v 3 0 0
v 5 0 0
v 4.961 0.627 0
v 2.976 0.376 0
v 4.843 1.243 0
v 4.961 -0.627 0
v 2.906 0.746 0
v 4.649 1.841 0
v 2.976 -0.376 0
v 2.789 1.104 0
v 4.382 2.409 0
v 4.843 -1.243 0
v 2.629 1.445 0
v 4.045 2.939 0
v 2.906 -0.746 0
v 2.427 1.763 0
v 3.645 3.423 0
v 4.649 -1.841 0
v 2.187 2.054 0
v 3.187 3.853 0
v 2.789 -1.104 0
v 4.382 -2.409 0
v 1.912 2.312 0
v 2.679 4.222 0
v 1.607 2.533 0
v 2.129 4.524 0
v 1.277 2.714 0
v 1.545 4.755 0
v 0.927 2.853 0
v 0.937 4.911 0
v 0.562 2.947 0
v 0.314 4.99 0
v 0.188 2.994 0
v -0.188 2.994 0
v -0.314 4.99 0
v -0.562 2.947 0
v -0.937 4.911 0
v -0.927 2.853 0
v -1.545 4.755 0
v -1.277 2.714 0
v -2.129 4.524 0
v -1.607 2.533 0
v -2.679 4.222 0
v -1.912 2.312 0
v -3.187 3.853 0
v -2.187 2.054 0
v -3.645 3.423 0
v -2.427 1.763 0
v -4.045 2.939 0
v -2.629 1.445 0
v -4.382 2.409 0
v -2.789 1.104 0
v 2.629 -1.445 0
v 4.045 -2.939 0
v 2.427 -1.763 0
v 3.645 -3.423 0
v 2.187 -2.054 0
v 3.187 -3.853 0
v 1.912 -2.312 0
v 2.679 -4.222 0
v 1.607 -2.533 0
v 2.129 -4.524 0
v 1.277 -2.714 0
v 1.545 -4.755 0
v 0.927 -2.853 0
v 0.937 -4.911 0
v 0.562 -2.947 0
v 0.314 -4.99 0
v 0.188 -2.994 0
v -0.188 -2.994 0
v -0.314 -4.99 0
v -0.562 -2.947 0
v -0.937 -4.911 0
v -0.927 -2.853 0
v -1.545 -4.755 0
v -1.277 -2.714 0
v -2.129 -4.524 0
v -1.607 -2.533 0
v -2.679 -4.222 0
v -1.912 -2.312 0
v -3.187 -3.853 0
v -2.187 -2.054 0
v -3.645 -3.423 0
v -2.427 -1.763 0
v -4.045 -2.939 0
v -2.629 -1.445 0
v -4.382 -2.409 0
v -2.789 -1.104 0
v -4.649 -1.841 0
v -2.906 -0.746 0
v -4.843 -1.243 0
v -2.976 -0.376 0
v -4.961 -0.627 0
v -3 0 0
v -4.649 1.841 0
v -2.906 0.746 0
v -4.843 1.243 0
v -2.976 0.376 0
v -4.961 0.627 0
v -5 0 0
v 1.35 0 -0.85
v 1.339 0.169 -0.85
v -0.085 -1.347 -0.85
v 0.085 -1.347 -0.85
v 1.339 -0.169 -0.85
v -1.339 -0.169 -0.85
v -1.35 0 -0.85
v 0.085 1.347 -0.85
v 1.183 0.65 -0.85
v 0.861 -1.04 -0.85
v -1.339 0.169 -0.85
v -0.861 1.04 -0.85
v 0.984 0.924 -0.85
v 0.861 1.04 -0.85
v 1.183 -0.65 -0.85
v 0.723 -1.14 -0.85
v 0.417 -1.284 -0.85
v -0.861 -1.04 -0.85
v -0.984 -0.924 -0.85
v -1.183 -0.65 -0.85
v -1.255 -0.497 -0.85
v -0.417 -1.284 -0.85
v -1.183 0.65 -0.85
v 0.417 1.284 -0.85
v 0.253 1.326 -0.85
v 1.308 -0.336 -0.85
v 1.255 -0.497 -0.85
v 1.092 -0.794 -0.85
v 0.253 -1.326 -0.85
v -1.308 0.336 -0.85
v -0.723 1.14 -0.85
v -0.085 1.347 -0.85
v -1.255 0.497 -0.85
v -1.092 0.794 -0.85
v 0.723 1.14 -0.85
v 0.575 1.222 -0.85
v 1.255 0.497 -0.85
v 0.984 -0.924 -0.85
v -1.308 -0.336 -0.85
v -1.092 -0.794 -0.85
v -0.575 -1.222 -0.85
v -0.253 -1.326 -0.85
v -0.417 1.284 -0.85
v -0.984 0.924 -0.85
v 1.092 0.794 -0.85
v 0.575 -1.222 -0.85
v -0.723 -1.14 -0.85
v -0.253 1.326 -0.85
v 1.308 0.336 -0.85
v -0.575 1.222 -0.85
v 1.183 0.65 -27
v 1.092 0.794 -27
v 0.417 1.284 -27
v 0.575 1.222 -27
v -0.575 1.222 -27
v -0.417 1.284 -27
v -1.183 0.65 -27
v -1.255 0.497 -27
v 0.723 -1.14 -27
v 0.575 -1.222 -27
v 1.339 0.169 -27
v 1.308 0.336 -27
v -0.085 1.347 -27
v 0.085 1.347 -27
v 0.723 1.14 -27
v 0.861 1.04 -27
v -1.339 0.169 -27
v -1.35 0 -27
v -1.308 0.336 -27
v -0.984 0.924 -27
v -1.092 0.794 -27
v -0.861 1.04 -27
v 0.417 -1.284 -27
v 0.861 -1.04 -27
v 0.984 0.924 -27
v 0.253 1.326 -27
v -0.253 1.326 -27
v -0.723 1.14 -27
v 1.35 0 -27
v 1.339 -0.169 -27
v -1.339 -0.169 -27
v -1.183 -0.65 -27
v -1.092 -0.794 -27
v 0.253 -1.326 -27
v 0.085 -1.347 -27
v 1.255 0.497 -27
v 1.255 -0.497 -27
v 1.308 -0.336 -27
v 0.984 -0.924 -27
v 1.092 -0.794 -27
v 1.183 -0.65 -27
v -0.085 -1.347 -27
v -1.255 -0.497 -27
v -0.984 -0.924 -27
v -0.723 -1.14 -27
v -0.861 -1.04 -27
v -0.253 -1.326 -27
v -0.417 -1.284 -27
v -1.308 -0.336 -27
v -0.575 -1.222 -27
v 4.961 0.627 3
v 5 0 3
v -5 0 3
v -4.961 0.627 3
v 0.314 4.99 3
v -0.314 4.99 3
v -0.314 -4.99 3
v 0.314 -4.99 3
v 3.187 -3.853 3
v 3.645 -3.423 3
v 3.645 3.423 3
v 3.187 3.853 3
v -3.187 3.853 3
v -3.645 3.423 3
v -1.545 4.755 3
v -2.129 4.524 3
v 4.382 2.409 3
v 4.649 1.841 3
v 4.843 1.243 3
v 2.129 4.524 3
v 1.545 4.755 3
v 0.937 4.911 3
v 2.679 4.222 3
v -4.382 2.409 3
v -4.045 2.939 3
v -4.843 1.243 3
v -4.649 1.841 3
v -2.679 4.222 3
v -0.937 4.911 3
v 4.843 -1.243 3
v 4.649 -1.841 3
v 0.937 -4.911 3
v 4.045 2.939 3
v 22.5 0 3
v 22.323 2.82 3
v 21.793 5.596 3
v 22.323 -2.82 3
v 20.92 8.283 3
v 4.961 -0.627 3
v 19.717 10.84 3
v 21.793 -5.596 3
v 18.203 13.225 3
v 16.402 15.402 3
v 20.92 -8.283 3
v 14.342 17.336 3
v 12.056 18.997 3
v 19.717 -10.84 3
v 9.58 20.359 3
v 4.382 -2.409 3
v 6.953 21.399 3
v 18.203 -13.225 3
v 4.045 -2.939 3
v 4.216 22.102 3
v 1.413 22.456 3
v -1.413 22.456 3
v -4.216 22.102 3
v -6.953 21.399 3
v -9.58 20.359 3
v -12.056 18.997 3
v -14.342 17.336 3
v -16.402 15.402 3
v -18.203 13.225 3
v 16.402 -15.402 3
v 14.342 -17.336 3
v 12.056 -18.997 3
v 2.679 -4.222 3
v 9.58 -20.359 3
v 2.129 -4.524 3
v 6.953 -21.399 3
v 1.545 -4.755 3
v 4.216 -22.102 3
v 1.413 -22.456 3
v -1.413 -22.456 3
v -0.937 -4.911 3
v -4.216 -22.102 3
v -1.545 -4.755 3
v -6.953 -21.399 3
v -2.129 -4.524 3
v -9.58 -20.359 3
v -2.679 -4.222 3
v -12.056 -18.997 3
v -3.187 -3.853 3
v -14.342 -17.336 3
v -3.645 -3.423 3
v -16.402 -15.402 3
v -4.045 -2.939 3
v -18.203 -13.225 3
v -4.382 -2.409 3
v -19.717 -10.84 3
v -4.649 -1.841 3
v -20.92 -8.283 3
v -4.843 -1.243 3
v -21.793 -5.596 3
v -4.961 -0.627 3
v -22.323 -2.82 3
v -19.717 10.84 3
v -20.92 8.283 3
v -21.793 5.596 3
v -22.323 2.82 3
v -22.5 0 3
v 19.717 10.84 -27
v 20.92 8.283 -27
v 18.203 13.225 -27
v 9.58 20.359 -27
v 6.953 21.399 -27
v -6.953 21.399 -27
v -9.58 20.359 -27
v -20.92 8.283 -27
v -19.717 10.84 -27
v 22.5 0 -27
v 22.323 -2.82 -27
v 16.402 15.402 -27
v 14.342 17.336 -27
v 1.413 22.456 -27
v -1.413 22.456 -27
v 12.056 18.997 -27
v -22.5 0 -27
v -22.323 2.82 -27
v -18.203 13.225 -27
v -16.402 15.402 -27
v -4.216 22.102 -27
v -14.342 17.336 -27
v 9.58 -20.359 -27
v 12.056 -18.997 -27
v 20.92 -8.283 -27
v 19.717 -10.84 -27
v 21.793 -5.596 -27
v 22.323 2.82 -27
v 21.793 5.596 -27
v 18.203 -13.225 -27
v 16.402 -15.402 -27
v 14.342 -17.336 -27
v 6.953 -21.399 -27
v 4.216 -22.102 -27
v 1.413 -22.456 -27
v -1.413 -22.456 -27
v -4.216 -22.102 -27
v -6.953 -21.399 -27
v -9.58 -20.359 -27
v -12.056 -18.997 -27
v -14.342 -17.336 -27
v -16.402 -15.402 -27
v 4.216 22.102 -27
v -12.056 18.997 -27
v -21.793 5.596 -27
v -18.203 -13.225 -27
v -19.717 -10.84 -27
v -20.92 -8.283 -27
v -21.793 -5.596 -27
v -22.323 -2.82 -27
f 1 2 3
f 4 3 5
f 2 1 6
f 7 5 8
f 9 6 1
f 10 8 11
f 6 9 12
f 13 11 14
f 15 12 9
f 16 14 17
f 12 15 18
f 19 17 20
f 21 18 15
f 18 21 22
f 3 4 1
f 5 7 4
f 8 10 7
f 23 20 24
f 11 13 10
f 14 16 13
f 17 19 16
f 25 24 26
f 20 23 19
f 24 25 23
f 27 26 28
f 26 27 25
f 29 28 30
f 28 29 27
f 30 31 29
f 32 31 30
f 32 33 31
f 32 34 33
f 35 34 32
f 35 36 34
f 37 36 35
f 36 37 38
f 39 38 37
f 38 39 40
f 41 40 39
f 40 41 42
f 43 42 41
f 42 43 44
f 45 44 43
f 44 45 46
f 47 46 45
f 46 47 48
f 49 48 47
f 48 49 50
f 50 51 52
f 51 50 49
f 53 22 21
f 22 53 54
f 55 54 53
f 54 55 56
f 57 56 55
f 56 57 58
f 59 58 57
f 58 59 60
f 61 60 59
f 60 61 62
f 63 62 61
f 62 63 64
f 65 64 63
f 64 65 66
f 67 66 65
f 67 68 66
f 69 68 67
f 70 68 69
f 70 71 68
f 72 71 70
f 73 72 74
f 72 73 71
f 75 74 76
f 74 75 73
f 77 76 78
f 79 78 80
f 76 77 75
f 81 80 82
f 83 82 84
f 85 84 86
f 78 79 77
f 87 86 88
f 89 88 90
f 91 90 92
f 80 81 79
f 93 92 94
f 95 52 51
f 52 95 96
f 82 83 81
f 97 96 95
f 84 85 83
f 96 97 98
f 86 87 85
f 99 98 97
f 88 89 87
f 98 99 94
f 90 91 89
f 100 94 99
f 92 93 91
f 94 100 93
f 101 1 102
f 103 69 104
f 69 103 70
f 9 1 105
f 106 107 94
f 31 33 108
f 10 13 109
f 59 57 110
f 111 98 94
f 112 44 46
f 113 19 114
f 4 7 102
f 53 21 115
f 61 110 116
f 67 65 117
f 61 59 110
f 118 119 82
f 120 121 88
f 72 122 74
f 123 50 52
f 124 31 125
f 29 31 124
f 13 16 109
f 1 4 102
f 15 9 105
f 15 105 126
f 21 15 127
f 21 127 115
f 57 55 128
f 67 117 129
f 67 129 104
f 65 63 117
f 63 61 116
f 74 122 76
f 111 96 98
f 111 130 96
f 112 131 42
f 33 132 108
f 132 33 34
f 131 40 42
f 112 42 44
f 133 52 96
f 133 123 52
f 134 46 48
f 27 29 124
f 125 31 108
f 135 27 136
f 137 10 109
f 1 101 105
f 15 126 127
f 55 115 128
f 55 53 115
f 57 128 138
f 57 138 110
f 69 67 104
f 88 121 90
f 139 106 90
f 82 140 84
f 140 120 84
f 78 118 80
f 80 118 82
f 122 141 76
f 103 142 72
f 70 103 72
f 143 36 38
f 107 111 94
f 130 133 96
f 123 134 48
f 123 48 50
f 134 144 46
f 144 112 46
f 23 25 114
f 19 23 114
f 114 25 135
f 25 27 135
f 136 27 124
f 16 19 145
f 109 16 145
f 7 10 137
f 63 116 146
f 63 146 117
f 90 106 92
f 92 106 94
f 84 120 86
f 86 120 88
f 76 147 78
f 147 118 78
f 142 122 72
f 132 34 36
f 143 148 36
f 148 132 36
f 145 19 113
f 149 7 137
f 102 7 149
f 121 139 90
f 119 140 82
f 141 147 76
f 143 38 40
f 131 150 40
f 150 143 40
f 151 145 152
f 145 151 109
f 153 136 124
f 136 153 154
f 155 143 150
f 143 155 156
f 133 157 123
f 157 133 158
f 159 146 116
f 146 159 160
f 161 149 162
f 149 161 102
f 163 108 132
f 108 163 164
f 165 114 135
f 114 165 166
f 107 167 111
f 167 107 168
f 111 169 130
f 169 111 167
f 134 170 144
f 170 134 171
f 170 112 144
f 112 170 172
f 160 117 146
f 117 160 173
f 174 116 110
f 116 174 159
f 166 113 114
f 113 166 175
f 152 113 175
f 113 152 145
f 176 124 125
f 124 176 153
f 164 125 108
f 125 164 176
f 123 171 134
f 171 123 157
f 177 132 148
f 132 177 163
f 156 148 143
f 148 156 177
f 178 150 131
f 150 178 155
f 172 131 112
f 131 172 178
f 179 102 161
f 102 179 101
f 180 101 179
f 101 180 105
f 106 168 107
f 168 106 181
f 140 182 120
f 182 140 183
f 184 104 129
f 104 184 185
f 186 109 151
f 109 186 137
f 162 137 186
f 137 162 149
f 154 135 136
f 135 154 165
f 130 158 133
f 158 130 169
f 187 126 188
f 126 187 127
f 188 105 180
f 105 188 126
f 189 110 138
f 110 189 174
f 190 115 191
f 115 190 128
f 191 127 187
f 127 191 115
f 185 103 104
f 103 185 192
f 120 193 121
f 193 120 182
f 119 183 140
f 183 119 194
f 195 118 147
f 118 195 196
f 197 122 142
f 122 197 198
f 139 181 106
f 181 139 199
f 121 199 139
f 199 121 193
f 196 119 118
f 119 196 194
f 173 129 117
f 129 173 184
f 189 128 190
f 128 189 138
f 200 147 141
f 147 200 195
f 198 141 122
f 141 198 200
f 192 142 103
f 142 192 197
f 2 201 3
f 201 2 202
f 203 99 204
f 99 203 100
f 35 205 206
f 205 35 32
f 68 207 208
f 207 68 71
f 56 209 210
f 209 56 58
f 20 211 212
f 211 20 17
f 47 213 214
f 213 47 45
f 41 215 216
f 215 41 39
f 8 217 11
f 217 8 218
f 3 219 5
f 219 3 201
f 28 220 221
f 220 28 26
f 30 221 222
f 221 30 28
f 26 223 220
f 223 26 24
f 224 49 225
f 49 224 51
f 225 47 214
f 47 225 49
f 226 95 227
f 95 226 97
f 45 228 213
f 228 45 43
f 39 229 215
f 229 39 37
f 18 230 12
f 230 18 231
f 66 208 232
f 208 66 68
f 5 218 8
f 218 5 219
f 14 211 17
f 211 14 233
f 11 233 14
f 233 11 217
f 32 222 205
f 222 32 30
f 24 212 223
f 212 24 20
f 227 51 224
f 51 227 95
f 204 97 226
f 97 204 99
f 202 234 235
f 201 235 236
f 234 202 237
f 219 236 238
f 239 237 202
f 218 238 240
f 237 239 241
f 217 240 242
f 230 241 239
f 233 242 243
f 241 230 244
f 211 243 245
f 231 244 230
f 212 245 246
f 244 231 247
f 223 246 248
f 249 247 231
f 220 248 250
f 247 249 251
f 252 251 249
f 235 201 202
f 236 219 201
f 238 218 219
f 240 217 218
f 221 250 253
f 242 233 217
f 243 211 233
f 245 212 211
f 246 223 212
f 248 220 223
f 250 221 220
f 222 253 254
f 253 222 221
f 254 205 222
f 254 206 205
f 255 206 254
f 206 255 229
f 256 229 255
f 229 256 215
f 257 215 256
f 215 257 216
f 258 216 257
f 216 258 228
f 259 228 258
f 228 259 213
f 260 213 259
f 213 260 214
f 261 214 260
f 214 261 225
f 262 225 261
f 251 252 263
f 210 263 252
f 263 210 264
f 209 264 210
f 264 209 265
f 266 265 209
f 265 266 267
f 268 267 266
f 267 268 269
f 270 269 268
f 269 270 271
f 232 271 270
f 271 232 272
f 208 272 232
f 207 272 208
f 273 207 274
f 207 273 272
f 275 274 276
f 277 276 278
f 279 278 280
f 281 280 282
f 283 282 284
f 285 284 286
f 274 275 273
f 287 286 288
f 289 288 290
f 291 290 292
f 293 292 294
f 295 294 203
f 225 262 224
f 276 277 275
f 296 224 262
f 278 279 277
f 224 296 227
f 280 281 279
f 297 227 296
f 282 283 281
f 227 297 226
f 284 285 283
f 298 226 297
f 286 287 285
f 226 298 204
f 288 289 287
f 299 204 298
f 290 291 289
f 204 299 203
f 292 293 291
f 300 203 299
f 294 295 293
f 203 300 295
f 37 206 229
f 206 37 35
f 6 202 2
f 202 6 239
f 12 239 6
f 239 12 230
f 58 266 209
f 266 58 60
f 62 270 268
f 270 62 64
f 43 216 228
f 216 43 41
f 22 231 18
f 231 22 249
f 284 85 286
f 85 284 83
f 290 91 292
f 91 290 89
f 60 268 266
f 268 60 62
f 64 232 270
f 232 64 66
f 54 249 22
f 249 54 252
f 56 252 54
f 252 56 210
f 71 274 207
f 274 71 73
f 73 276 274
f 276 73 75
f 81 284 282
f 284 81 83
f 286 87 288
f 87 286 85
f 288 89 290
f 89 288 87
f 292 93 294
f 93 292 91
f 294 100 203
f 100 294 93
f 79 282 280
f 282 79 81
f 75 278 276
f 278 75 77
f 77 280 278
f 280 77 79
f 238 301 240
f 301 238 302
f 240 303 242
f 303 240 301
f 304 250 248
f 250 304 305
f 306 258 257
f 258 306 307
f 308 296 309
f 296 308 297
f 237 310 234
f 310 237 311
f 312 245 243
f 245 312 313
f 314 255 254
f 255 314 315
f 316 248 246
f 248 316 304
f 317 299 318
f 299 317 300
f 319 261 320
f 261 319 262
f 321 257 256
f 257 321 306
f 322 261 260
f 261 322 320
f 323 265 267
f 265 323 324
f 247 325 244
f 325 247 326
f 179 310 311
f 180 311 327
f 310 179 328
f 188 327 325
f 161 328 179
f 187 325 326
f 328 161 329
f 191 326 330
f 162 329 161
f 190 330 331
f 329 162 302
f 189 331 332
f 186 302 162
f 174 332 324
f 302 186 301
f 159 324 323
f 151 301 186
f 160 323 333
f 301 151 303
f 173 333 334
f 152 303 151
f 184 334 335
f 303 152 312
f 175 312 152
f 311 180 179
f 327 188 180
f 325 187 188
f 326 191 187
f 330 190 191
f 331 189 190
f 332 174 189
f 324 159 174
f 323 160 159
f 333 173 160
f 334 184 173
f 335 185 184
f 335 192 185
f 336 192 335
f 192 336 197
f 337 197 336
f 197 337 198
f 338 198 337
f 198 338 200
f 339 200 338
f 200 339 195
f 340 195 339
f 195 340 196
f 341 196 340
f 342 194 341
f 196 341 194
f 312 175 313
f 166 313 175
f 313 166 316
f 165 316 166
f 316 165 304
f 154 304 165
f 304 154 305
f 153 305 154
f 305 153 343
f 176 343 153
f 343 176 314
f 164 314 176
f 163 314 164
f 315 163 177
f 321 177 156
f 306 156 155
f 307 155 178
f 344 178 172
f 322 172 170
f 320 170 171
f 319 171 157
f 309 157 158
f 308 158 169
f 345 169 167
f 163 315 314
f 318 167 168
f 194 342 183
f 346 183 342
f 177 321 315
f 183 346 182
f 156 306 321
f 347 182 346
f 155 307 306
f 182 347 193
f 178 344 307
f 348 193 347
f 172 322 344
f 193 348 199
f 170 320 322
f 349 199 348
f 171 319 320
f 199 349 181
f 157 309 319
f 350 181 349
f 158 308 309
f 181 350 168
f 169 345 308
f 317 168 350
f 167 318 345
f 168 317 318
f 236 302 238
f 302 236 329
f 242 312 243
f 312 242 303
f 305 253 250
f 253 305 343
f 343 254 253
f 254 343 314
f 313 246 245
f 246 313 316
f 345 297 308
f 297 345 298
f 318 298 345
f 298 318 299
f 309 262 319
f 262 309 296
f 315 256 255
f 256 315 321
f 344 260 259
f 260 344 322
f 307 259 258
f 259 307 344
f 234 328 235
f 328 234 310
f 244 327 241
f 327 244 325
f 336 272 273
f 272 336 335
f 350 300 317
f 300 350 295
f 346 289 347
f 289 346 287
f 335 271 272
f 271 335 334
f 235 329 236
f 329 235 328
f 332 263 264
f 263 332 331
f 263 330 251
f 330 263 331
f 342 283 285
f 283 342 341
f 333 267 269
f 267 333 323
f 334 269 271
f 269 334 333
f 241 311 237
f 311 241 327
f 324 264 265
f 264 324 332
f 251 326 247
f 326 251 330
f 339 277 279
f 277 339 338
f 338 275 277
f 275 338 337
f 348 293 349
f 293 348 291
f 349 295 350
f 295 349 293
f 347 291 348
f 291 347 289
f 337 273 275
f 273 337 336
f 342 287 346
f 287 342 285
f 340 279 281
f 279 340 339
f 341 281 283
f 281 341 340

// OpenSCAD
$fn = 50;

difference() {
	union() {
		translate(v = [0, 0, -27.0]) {
			cylinder(h = 30, r = 22.5);
		}
	}
	union() {
		translate(v = [0, 0, 0]) {
			rotate(a = [0, 0, 0]) {
				difference() {
					union() {
						translate(v = [0, 0, -30.0]) {
							cylinder(h = 30, r = 1.0);
						}
						translate(v = [0, 0, -0.85]) {
							cylinder(h = 0.85, r1 = 1.35, r2 = 3.0);
						}
						translate(v = [0, 0, -30.0]) {
							cylinder(h = 30, r = 1.35);
						}
						translate(v = [0, 0, -30.0]) {
							cylinder(h = 30, r = 1.0);
						}
					}
					union();
				}
			}
		}
		#cylinder(h = 3, r = 5.0);
	}
}
